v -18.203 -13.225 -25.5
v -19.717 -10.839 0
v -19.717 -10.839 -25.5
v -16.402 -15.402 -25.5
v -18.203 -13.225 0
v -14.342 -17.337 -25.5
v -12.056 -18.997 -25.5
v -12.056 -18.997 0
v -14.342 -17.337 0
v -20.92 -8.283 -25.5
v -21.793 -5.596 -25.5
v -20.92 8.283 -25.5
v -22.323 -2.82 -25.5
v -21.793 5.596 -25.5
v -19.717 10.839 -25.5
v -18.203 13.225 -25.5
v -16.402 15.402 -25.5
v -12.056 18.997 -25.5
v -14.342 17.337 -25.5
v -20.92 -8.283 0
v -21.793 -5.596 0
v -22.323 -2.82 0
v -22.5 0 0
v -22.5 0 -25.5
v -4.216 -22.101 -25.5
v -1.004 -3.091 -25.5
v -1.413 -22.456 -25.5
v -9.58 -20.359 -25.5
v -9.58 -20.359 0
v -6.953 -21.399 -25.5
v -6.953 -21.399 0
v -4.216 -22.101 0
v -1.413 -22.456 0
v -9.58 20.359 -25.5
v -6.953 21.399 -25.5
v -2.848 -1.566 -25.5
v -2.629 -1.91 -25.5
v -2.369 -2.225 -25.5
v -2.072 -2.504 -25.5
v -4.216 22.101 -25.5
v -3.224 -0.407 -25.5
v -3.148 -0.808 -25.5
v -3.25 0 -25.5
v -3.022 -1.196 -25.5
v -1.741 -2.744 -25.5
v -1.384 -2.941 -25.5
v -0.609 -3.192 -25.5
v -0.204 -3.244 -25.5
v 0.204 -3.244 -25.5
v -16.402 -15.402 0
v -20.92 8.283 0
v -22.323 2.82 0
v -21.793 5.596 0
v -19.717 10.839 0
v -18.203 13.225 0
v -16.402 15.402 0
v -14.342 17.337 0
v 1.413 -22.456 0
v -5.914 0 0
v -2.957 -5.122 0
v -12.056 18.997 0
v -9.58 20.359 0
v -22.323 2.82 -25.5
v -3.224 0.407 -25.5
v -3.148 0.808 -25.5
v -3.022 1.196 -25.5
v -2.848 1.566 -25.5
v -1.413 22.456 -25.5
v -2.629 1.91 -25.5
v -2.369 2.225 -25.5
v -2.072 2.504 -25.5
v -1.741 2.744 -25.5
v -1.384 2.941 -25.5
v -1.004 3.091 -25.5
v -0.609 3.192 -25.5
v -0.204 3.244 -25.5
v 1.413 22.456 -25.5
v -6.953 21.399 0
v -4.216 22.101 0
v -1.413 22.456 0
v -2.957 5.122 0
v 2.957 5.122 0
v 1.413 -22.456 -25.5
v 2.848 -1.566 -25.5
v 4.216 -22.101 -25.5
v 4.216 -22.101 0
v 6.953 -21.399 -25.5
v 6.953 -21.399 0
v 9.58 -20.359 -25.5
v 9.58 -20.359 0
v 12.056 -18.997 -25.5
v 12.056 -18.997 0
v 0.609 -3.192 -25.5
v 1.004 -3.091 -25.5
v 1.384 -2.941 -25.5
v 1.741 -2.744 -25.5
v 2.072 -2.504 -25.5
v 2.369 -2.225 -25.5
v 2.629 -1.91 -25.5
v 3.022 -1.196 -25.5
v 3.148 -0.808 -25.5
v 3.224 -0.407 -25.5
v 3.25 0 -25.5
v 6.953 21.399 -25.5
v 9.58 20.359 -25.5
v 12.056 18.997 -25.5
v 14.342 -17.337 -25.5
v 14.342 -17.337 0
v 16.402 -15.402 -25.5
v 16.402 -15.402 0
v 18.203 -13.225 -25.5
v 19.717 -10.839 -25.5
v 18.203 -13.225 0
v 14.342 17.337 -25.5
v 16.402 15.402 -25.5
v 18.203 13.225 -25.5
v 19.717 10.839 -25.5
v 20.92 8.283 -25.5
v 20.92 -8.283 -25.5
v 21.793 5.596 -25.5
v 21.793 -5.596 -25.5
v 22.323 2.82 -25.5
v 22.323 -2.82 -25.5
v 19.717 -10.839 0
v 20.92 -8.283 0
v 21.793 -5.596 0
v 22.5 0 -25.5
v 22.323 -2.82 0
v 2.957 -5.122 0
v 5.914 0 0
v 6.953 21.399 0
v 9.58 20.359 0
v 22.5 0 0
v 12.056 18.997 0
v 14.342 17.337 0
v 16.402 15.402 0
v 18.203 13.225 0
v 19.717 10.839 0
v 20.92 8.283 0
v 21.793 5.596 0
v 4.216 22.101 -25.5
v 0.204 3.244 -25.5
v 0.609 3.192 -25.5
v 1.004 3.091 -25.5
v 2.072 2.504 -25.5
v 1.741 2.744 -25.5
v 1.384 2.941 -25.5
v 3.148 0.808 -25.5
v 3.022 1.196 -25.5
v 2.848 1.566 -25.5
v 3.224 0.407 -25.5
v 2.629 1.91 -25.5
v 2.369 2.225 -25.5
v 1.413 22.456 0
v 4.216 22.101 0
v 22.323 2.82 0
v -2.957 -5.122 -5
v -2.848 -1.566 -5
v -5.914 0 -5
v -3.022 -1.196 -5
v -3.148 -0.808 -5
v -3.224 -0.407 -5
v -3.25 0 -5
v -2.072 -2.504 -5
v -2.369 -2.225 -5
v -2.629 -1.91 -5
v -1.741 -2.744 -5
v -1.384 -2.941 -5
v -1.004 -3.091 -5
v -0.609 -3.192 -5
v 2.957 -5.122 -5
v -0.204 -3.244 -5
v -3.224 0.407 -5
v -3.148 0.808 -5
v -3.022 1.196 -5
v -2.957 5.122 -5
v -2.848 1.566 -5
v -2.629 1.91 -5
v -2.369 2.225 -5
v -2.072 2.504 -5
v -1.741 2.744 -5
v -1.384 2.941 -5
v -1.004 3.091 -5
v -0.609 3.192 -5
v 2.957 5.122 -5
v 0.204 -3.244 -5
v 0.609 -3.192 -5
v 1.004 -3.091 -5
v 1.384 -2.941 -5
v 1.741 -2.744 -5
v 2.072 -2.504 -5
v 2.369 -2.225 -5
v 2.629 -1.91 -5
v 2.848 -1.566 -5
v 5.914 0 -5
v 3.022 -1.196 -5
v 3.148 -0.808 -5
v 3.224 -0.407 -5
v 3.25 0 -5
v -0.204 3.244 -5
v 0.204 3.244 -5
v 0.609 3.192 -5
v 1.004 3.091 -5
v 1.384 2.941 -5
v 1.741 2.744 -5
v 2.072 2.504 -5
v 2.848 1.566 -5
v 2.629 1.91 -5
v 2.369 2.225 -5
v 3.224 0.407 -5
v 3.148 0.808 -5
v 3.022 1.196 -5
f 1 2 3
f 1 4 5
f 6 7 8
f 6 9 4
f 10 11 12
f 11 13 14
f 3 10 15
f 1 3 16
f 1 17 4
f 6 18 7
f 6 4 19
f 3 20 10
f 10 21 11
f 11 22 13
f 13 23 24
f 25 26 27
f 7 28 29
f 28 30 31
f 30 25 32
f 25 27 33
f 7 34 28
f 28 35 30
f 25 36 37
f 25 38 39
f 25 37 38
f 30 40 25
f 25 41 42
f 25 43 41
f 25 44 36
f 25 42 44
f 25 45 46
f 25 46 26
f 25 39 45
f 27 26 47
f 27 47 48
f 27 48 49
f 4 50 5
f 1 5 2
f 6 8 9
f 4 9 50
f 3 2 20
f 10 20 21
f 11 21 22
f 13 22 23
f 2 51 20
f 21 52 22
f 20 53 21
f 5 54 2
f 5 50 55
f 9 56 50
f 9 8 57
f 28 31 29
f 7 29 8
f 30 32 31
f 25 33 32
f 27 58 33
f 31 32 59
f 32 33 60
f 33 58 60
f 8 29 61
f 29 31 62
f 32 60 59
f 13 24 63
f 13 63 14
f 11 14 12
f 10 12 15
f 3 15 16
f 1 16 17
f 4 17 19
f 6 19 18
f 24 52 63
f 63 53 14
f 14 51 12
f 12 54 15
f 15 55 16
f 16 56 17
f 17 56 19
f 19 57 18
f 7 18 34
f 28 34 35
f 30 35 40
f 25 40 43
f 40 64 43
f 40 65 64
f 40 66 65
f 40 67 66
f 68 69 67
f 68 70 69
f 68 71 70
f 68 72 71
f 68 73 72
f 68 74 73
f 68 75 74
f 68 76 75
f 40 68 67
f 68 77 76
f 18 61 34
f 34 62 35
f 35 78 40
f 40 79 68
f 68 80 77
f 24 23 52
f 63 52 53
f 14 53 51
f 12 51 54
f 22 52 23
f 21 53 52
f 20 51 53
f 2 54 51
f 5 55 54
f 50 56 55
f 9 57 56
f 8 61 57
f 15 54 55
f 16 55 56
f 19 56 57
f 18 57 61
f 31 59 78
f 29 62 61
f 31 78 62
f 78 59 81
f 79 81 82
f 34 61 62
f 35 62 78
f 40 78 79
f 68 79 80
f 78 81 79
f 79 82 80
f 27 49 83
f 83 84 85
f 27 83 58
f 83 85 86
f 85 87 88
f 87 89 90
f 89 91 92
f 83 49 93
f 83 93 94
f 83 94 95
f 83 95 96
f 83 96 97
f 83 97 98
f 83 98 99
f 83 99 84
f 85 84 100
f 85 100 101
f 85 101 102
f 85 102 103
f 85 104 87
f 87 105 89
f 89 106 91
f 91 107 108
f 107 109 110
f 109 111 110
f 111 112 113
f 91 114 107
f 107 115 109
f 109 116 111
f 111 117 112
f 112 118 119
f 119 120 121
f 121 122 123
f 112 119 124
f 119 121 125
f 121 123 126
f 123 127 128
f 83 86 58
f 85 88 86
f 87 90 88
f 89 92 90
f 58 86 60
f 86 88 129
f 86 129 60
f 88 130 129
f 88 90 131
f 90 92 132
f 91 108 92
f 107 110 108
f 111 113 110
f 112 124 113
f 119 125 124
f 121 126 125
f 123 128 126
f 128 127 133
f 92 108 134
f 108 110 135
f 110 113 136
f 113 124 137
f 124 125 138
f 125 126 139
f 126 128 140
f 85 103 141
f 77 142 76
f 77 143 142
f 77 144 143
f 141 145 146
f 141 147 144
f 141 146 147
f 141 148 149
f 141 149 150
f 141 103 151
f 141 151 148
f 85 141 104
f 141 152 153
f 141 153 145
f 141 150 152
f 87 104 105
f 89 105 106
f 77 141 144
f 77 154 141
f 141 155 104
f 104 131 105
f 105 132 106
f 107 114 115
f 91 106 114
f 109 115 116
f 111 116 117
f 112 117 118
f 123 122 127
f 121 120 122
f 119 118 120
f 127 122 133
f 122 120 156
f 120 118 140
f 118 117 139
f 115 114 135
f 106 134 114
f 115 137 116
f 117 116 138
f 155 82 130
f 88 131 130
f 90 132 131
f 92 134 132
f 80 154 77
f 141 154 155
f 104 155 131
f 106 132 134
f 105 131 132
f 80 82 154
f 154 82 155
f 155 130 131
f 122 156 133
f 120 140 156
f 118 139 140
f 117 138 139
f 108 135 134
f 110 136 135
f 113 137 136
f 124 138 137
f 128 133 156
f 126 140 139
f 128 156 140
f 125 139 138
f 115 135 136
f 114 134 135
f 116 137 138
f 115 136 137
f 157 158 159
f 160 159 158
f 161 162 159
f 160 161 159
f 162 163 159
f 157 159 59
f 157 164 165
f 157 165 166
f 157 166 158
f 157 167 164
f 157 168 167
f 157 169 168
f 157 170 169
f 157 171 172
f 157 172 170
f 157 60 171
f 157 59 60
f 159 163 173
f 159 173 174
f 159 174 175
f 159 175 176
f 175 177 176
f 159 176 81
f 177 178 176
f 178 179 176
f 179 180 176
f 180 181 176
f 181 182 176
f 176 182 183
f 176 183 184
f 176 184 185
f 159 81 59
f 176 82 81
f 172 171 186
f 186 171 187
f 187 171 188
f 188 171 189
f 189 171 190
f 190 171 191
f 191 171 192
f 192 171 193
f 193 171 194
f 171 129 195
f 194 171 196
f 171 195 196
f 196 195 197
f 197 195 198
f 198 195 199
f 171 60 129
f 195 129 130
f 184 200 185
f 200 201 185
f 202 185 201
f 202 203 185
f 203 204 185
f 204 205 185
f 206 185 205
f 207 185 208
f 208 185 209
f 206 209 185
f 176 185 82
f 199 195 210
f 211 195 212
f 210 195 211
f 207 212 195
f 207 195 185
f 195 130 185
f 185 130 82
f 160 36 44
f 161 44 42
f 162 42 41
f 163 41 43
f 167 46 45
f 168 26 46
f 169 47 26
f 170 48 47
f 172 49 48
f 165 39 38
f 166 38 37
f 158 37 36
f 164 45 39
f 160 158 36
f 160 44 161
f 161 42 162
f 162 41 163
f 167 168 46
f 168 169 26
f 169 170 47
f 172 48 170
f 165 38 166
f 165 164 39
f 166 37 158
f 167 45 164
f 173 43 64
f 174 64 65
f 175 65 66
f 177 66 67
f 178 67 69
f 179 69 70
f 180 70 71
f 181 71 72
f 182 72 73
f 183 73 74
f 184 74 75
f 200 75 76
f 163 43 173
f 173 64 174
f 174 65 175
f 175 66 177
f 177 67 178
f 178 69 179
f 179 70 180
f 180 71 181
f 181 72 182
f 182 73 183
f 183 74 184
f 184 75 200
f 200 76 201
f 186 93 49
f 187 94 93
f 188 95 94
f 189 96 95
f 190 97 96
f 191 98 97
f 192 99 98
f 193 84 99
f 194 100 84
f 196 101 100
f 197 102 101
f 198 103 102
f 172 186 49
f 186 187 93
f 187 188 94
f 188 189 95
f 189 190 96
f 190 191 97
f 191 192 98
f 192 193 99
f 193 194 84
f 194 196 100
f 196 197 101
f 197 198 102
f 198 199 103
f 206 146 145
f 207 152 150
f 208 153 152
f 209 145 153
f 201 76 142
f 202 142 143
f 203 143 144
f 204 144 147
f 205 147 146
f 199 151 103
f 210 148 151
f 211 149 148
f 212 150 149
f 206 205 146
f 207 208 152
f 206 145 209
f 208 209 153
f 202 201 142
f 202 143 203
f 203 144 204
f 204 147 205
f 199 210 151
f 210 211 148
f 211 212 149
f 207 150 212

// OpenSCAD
$fn = 50;


difference() {
	union() {
		translate(v = [0, 0, -25.5000000000]) {
			cylinder(h = 25.5000000000, r = 22.5000000000);
		}
		#translate(v = [0, 0, -27.0000000000]) {
			cylinder(h = 27, r = 2.8750000000);
		}
	}
	union() {
		translate(v = [0, 0, 0]) {
			rotate(a = [0, 0, 0]) {
				difference() {
					union() {
						translate(v = [0, 0, -5]) {
							linear_extrude(height = 5) {
								polygon(points = [[5.9142500000, 0.0000000000], [2.9571250000, 5.1218907443], [-2.9571250000, 5.1218907443], [-5.9142500000, 0.0000000000], [-2.9571250000, -5.1218907443], [2.9571250000, -5.1218907443]]);
							}
						}
					}
					union();
				}
			}
		}
		#translate(v = [0, 0, -100.0000000000]) {
			cylinder(h = 200, r = 3.2500000000);
		}
	}
}
